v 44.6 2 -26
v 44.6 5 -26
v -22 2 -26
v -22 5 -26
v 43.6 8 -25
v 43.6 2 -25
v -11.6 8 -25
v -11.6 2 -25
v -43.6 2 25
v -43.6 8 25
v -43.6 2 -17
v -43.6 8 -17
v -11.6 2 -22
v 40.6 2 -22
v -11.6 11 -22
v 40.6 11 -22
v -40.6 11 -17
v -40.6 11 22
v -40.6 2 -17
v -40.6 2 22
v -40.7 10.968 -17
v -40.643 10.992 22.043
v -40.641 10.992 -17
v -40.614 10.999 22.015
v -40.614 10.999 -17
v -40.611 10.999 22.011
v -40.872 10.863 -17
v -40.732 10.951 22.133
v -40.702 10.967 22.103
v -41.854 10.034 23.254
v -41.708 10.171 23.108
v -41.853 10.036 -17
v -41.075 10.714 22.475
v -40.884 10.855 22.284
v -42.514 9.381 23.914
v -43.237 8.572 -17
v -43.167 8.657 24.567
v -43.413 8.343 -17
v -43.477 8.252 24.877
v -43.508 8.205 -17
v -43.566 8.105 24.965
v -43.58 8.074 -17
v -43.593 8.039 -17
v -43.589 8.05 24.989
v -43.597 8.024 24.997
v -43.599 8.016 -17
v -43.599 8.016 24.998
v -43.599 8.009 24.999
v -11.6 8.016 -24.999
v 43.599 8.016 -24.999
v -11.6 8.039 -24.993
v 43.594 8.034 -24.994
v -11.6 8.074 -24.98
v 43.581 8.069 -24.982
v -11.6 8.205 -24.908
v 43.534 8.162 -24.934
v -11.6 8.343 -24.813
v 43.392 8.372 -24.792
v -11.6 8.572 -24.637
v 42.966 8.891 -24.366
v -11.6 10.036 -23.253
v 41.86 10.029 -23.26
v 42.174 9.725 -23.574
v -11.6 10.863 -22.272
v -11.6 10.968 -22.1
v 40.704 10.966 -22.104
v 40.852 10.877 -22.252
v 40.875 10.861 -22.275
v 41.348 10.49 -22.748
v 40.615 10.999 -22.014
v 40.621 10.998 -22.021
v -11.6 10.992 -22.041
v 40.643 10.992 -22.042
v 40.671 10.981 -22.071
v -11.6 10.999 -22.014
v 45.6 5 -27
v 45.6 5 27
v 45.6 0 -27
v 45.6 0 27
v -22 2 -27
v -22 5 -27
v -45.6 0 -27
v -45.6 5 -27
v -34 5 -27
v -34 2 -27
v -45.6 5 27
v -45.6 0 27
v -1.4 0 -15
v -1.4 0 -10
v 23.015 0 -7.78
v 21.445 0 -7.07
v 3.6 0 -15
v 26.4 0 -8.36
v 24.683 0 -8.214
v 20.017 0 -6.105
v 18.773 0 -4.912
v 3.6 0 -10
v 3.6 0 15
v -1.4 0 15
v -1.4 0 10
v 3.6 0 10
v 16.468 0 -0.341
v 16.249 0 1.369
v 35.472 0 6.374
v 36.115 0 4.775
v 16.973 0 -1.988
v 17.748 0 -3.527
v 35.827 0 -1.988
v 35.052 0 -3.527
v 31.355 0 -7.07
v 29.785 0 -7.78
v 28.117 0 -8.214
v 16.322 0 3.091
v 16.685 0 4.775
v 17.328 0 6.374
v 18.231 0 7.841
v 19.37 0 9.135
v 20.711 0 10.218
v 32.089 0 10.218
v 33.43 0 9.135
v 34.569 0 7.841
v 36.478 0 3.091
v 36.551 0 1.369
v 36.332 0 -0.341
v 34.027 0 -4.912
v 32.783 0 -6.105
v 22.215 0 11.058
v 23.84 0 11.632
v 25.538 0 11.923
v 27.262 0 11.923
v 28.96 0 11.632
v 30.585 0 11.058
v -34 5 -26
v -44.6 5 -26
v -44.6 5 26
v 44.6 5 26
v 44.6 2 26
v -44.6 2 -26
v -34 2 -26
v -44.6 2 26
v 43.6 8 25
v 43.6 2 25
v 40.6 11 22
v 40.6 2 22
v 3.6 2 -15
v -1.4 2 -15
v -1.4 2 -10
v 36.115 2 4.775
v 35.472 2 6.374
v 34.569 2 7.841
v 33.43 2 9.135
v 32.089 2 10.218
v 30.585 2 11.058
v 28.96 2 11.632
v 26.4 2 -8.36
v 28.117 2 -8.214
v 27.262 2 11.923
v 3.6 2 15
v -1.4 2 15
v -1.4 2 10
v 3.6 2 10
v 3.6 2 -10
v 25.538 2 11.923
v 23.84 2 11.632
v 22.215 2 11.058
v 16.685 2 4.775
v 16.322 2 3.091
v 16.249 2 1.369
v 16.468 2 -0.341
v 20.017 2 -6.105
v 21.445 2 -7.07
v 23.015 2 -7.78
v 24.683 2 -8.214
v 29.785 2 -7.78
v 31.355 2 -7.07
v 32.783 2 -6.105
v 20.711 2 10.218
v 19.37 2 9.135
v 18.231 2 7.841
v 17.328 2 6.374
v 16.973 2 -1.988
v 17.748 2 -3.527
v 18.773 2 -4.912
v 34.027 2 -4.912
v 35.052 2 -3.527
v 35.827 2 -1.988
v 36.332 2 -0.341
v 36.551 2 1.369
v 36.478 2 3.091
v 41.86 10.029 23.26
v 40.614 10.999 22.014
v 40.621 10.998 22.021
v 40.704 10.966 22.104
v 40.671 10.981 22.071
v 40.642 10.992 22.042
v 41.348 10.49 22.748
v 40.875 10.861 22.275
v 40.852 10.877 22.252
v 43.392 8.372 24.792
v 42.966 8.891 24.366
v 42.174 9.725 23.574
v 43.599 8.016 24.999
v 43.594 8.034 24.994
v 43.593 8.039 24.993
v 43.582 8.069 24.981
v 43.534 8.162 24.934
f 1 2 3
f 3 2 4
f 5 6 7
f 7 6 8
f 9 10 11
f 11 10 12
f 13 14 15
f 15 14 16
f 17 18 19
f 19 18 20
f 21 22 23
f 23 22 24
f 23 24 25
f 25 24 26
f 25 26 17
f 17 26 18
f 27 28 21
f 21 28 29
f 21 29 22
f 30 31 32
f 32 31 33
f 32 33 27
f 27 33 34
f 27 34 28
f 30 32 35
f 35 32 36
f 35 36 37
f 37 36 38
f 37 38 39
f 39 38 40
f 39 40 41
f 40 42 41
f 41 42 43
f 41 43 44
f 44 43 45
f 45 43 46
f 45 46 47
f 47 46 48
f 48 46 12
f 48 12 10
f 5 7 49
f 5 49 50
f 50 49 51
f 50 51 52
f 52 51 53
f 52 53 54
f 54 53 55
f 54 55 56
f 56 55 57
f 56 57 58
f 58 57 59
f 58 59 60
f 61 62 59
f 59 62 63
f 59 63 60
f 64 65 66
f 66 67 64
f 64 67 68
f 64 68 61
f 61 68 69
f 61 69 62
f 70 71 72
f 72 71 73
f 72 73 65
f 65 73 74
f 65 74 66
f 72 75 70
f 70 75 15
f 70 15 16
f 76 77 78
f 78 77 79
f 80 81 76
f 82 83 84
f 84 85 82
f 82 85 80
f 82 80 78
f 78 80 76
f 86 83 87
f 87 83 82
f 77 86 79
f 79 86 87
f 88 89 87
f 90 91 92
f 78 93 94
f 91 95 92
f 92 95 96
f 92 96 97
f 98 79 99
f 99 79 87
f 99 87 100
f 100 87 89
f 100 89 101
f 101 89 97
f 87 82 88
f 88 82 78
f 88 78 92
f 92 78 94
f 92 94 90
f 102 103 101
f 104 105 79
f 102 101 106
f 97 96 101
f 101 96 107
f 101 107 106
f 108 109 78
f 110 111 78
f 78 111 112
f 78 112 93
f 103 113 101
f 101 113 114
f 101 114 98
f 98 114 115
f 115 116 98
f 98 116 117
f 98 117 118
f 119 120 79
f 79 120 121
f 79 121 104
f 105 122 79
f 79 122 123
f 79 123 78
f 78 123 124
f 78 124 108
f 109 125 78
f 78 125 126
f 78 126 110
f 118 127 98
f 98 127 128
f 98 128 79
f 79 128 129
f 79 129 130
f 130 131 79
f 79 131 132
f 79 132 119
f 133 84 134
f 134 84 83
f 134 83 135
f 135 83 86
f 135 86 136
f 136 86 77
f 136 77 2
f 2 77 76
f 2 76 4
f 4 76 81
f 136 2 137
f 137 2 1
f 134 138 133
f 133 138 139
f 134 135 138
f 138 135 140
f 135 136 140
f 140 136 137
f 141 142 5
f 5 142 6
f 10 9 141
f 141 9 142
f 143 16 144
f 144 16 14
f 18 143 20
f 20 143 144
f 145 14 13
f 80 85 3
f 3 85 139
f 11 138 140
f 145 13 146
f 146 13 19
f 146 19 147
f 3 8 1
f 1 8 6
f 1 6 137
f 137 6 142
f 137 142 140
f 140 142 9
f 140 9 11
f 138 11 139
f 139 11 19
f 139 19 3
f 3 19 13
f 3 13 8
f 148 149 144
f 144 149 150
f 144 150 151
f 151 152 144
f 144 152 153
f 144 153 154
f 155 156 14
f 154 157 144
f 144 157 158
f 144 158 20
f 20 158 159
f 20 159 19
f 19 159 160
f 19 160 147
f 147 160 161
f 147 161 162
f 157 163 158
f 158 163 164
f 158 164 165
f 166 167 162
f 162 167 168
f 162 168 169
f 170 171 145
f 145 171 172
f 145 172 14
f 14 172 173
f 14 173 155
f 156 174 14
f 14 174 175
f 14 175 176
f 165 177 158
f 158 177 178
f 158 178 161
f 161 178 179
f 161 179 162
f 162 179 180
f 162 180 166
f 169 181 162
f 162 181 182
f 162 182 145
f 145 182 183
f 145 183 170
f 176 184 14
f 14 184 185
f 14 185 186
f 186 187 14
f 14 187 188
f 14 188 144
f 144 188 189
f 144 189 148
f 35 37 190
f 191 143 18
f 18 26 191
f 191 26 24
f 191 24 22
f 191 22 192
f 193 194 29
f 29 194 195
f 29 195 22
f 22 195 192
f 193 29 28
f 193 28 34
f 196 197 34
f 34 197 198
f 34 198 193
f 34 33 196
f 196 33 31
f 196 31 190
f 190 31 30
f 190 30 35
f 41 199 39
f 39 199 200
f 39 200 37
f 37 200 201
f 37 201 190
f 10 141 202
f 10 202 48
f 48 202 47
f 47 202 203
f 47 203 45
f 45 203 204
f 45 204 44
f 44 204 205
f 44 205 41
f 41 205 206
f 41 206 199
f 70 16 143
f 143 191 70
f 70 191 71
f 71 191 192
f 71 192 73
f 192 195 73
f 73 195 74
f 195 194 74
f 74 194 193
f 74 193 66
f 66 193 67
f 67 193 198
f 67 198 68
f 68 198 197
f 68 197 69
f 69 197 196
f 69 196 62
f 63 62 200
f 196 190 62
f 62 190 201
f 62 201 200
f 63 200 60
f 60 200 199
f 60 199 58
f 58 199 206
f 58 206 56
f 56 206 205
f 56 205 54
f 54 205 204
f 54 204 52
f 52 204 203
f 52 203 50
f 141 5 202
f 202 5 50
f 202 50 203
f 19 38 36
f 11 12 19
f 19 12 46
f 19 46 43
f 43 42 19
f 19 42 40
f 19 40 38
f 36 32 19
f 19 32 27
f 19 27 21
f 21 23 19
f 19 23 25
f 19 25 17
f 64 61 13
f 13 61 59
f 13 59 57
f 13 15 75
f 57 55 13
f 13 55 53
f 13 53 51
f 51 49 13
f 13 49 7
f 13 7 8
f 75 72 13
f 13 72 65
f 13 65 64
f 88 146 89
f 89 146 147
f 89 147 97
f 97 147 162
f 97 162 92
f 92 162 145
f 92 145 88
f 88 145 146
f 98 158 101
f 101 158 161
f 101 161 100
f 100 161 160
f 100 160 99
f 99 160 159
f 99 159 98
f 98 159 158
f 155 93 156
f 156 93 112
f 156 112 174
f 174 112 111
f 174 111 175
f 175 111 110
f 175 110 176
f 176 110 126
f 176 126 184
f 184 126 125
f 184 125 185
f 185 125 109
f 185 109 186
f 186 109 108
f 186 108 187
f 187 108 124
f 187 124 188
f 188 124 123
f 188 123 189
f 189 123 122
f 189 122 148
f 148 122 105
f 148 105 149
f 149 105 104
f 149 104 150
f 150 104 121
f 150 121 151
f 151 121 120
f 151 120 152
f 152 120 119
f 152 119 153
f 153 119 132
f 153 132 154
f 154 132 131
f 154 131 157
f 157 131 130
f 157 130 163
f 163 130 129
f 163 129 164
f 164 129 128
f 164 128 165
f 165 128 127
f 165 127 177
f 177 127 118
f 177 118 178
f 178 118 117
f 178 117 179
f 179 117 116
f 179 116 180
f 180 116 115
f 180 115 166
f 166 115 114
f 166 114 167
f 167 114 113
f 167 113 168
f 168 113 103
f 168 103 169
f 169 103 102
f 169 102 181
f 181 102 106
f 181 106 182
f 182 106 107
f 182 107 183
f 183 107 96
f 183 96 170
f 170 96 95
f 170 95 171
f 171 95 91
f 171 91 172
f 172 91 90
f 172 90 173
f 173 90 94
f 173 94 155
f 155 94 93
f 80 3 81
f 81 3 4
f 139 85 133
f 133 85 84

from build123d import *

# Parameters (mm, degrees)
CROQUIS1_W              = 91.2
CROQUIS1_H              = 54
SALIENTE_EXTRUIR1_DEPTH = 2
CROQUIS2_W              = 91.2
CROQUIS2_H              = 54
CROQUIS2_W_2            = 89.2
CROQUIS2_H_2            = 52
SALIENTE_EXTRUIR2_DEPTH = 3
CROQUIS3_W              = 87.2
CROQUIS3_H              = 50
CROQUIS3_W_2            = 81.2
CROQUIS3_H_2            = 44
SALIENTE_EXTRUIR3_DEPTH = 9
REDONDEO1_SIZE          = 3
CROQUIS4_W              = 32
CROQUIS4_H              = 8
CORTAR_EXTRUIR2_DEPTH   = 28
CROQUIS5_R              = 10.16
CROQUIS5_W              = 5
CROQUIS5_H              = 5
CORTAR_EXTRUIR3_DEPTH   = 28
CROQUIS6_W              = 12
CROQUIS6_H              = 6
CORTAR_EXTRUIR4_DEPTH   = 7


with BuildPart() as part:
    # Croquis1 → Saliente-Extruir1 (new body)
    with BuildSketch(Plane(origin=(0, 0, 0), x_dir=(1, 0, 0), z_dir=(0, 1, 0))):
        Rectangle(CROQUIS1_W, CROQUIS1_H)
    extrude(amount=SALIENTE_EXTRUIR1_DEPTH)

    # Croquis2 → Saliente-Extruir2 (add)
    with BuildSketch(Plane(origin=(0, 2, 0), x_dir=(1, 0, 0), z_dir=(0, 1, 0))):
        Rectangle(CROQUIS2_W, CROQUIS2_H)
        Rectangle(CROQUIS2_W_2, CROQUIS2_H_2, mode=Mode.SUBTRACT)
    extrude(amount=SALIENTE_EXTRUIR2_DEPTH)

    # Croquis3 → Saliente-Extruir3 (add)
    with BuildSketch(Plane(origin=(0, 2, 0), x_dir=(1, 0, 0), z_dir=(0, 1, 0))):
        Rectangle(CROQUIS3_W, CROQUIS3_H)
        Rectangle(CROQUIS3_W_2, CROQUIS3_H_2, mode=Mode.SUBTRACT)
    extrude(amount=SALIENTE_EXTRUIR3_DEPTH)

    # Redondeo1
    # a fillet whose section is not a circle: 3 mm, written as the material it takes off along each edge
    with BuildSketch(Plane(origin=(51.1, 11, -25), x_dir=(0, -1, 0), z_dir=(-1, 0, 0)), Plane(origin=(-51.1, 11, 25), x_dir=(0, -1, 0), z_dir=(1, 0, 0))) as redondeo1_piece_1:
        with BuildLine():
            Bezier((REDONDEO1_SIZE, 0), (0, 0), (0, REDONDEO1_SIZE), weights=[1, 0.111111111, 1])
            Line((0, REDONDEO1_SIZE), (0, 0))
            Line((0, 0), (REDONDEO1_SIZE, 0))
        make_face()
    extrude(amount=102.2, mode=Mode.SUBTRACT)
    with BuildSketch(Plane(origin=(43.6, 11, 32.5), x_dir=(0, -1, 0), z_dir=(0, 0, -1)), Plane(origin=(-43.6, 11, -32.5), x_dir=(0, -1, 0), z_dir=(0, 0, 1))) as redondeo1_piece_2:
        with BuildLine():
            Bezier((REDONDEO1_SIZE, 0), (0, 0), (0, REDONDEO1_SIZE), weights=[1, 0.111111111, 1])
            Line((0, REDONDEO1_SIZE), (0, 0))
            Line((0, 0), (REDONDEO1_SIZE, 0))
        make_face()
    extrude(amount=65, mode=Mode.SUBTRACT)

    # Croquis4 → Cortar-Extruir2 (cut)
    with BuildSketch(Plane(origin=(0, 2, 0), x_dir=(1, 0, 0), z_dir=(0, 1, 0))):
        with Locations((-27.6, 21)):
            Rectangle(CROQUIS4_W, CROQUIS4_H)
    extrude(amount=CORTAR_EXTRUIR2_DEPTH, mode=Mode.SUBTRACT)

    # Croquis5 → Cortar-Extruir3 (cut)
    with BuildSketch(Plane.XZ):
        with Locations(Location((26.4, 1.8, 0), (0, 0, 270))):
            Circle(CROQUIS5_R)
        with Locations((1.1, 12.5)):
            Rectangle(CROQUIS5_W, CROQUIS5_H)
        with Locations((1.1, -12.5)):
            Rectangle(CROQUIS5_W, CROQUIS5_H)
    extrude(amount=-CORTAR_EXTRUIR3_DEPTH, mode=Mode.SUBTRACT)

    # Croquis6 → Cortar-Extruir4 (cut)
    with BuildSketch(Plane(origin=(0, 0, -27), x_dir=(-1, 0, 0), z_dir=(0, 0, -1))):
        with Locations((28, 5)):
            Rectangle(CROQUIS6_W, CROQUIS6_H)
    extrude(amount=-CORTAR_EXTRUIR4_DEPTH, mode=Mode.SUBTRACT)


solid = part.part
